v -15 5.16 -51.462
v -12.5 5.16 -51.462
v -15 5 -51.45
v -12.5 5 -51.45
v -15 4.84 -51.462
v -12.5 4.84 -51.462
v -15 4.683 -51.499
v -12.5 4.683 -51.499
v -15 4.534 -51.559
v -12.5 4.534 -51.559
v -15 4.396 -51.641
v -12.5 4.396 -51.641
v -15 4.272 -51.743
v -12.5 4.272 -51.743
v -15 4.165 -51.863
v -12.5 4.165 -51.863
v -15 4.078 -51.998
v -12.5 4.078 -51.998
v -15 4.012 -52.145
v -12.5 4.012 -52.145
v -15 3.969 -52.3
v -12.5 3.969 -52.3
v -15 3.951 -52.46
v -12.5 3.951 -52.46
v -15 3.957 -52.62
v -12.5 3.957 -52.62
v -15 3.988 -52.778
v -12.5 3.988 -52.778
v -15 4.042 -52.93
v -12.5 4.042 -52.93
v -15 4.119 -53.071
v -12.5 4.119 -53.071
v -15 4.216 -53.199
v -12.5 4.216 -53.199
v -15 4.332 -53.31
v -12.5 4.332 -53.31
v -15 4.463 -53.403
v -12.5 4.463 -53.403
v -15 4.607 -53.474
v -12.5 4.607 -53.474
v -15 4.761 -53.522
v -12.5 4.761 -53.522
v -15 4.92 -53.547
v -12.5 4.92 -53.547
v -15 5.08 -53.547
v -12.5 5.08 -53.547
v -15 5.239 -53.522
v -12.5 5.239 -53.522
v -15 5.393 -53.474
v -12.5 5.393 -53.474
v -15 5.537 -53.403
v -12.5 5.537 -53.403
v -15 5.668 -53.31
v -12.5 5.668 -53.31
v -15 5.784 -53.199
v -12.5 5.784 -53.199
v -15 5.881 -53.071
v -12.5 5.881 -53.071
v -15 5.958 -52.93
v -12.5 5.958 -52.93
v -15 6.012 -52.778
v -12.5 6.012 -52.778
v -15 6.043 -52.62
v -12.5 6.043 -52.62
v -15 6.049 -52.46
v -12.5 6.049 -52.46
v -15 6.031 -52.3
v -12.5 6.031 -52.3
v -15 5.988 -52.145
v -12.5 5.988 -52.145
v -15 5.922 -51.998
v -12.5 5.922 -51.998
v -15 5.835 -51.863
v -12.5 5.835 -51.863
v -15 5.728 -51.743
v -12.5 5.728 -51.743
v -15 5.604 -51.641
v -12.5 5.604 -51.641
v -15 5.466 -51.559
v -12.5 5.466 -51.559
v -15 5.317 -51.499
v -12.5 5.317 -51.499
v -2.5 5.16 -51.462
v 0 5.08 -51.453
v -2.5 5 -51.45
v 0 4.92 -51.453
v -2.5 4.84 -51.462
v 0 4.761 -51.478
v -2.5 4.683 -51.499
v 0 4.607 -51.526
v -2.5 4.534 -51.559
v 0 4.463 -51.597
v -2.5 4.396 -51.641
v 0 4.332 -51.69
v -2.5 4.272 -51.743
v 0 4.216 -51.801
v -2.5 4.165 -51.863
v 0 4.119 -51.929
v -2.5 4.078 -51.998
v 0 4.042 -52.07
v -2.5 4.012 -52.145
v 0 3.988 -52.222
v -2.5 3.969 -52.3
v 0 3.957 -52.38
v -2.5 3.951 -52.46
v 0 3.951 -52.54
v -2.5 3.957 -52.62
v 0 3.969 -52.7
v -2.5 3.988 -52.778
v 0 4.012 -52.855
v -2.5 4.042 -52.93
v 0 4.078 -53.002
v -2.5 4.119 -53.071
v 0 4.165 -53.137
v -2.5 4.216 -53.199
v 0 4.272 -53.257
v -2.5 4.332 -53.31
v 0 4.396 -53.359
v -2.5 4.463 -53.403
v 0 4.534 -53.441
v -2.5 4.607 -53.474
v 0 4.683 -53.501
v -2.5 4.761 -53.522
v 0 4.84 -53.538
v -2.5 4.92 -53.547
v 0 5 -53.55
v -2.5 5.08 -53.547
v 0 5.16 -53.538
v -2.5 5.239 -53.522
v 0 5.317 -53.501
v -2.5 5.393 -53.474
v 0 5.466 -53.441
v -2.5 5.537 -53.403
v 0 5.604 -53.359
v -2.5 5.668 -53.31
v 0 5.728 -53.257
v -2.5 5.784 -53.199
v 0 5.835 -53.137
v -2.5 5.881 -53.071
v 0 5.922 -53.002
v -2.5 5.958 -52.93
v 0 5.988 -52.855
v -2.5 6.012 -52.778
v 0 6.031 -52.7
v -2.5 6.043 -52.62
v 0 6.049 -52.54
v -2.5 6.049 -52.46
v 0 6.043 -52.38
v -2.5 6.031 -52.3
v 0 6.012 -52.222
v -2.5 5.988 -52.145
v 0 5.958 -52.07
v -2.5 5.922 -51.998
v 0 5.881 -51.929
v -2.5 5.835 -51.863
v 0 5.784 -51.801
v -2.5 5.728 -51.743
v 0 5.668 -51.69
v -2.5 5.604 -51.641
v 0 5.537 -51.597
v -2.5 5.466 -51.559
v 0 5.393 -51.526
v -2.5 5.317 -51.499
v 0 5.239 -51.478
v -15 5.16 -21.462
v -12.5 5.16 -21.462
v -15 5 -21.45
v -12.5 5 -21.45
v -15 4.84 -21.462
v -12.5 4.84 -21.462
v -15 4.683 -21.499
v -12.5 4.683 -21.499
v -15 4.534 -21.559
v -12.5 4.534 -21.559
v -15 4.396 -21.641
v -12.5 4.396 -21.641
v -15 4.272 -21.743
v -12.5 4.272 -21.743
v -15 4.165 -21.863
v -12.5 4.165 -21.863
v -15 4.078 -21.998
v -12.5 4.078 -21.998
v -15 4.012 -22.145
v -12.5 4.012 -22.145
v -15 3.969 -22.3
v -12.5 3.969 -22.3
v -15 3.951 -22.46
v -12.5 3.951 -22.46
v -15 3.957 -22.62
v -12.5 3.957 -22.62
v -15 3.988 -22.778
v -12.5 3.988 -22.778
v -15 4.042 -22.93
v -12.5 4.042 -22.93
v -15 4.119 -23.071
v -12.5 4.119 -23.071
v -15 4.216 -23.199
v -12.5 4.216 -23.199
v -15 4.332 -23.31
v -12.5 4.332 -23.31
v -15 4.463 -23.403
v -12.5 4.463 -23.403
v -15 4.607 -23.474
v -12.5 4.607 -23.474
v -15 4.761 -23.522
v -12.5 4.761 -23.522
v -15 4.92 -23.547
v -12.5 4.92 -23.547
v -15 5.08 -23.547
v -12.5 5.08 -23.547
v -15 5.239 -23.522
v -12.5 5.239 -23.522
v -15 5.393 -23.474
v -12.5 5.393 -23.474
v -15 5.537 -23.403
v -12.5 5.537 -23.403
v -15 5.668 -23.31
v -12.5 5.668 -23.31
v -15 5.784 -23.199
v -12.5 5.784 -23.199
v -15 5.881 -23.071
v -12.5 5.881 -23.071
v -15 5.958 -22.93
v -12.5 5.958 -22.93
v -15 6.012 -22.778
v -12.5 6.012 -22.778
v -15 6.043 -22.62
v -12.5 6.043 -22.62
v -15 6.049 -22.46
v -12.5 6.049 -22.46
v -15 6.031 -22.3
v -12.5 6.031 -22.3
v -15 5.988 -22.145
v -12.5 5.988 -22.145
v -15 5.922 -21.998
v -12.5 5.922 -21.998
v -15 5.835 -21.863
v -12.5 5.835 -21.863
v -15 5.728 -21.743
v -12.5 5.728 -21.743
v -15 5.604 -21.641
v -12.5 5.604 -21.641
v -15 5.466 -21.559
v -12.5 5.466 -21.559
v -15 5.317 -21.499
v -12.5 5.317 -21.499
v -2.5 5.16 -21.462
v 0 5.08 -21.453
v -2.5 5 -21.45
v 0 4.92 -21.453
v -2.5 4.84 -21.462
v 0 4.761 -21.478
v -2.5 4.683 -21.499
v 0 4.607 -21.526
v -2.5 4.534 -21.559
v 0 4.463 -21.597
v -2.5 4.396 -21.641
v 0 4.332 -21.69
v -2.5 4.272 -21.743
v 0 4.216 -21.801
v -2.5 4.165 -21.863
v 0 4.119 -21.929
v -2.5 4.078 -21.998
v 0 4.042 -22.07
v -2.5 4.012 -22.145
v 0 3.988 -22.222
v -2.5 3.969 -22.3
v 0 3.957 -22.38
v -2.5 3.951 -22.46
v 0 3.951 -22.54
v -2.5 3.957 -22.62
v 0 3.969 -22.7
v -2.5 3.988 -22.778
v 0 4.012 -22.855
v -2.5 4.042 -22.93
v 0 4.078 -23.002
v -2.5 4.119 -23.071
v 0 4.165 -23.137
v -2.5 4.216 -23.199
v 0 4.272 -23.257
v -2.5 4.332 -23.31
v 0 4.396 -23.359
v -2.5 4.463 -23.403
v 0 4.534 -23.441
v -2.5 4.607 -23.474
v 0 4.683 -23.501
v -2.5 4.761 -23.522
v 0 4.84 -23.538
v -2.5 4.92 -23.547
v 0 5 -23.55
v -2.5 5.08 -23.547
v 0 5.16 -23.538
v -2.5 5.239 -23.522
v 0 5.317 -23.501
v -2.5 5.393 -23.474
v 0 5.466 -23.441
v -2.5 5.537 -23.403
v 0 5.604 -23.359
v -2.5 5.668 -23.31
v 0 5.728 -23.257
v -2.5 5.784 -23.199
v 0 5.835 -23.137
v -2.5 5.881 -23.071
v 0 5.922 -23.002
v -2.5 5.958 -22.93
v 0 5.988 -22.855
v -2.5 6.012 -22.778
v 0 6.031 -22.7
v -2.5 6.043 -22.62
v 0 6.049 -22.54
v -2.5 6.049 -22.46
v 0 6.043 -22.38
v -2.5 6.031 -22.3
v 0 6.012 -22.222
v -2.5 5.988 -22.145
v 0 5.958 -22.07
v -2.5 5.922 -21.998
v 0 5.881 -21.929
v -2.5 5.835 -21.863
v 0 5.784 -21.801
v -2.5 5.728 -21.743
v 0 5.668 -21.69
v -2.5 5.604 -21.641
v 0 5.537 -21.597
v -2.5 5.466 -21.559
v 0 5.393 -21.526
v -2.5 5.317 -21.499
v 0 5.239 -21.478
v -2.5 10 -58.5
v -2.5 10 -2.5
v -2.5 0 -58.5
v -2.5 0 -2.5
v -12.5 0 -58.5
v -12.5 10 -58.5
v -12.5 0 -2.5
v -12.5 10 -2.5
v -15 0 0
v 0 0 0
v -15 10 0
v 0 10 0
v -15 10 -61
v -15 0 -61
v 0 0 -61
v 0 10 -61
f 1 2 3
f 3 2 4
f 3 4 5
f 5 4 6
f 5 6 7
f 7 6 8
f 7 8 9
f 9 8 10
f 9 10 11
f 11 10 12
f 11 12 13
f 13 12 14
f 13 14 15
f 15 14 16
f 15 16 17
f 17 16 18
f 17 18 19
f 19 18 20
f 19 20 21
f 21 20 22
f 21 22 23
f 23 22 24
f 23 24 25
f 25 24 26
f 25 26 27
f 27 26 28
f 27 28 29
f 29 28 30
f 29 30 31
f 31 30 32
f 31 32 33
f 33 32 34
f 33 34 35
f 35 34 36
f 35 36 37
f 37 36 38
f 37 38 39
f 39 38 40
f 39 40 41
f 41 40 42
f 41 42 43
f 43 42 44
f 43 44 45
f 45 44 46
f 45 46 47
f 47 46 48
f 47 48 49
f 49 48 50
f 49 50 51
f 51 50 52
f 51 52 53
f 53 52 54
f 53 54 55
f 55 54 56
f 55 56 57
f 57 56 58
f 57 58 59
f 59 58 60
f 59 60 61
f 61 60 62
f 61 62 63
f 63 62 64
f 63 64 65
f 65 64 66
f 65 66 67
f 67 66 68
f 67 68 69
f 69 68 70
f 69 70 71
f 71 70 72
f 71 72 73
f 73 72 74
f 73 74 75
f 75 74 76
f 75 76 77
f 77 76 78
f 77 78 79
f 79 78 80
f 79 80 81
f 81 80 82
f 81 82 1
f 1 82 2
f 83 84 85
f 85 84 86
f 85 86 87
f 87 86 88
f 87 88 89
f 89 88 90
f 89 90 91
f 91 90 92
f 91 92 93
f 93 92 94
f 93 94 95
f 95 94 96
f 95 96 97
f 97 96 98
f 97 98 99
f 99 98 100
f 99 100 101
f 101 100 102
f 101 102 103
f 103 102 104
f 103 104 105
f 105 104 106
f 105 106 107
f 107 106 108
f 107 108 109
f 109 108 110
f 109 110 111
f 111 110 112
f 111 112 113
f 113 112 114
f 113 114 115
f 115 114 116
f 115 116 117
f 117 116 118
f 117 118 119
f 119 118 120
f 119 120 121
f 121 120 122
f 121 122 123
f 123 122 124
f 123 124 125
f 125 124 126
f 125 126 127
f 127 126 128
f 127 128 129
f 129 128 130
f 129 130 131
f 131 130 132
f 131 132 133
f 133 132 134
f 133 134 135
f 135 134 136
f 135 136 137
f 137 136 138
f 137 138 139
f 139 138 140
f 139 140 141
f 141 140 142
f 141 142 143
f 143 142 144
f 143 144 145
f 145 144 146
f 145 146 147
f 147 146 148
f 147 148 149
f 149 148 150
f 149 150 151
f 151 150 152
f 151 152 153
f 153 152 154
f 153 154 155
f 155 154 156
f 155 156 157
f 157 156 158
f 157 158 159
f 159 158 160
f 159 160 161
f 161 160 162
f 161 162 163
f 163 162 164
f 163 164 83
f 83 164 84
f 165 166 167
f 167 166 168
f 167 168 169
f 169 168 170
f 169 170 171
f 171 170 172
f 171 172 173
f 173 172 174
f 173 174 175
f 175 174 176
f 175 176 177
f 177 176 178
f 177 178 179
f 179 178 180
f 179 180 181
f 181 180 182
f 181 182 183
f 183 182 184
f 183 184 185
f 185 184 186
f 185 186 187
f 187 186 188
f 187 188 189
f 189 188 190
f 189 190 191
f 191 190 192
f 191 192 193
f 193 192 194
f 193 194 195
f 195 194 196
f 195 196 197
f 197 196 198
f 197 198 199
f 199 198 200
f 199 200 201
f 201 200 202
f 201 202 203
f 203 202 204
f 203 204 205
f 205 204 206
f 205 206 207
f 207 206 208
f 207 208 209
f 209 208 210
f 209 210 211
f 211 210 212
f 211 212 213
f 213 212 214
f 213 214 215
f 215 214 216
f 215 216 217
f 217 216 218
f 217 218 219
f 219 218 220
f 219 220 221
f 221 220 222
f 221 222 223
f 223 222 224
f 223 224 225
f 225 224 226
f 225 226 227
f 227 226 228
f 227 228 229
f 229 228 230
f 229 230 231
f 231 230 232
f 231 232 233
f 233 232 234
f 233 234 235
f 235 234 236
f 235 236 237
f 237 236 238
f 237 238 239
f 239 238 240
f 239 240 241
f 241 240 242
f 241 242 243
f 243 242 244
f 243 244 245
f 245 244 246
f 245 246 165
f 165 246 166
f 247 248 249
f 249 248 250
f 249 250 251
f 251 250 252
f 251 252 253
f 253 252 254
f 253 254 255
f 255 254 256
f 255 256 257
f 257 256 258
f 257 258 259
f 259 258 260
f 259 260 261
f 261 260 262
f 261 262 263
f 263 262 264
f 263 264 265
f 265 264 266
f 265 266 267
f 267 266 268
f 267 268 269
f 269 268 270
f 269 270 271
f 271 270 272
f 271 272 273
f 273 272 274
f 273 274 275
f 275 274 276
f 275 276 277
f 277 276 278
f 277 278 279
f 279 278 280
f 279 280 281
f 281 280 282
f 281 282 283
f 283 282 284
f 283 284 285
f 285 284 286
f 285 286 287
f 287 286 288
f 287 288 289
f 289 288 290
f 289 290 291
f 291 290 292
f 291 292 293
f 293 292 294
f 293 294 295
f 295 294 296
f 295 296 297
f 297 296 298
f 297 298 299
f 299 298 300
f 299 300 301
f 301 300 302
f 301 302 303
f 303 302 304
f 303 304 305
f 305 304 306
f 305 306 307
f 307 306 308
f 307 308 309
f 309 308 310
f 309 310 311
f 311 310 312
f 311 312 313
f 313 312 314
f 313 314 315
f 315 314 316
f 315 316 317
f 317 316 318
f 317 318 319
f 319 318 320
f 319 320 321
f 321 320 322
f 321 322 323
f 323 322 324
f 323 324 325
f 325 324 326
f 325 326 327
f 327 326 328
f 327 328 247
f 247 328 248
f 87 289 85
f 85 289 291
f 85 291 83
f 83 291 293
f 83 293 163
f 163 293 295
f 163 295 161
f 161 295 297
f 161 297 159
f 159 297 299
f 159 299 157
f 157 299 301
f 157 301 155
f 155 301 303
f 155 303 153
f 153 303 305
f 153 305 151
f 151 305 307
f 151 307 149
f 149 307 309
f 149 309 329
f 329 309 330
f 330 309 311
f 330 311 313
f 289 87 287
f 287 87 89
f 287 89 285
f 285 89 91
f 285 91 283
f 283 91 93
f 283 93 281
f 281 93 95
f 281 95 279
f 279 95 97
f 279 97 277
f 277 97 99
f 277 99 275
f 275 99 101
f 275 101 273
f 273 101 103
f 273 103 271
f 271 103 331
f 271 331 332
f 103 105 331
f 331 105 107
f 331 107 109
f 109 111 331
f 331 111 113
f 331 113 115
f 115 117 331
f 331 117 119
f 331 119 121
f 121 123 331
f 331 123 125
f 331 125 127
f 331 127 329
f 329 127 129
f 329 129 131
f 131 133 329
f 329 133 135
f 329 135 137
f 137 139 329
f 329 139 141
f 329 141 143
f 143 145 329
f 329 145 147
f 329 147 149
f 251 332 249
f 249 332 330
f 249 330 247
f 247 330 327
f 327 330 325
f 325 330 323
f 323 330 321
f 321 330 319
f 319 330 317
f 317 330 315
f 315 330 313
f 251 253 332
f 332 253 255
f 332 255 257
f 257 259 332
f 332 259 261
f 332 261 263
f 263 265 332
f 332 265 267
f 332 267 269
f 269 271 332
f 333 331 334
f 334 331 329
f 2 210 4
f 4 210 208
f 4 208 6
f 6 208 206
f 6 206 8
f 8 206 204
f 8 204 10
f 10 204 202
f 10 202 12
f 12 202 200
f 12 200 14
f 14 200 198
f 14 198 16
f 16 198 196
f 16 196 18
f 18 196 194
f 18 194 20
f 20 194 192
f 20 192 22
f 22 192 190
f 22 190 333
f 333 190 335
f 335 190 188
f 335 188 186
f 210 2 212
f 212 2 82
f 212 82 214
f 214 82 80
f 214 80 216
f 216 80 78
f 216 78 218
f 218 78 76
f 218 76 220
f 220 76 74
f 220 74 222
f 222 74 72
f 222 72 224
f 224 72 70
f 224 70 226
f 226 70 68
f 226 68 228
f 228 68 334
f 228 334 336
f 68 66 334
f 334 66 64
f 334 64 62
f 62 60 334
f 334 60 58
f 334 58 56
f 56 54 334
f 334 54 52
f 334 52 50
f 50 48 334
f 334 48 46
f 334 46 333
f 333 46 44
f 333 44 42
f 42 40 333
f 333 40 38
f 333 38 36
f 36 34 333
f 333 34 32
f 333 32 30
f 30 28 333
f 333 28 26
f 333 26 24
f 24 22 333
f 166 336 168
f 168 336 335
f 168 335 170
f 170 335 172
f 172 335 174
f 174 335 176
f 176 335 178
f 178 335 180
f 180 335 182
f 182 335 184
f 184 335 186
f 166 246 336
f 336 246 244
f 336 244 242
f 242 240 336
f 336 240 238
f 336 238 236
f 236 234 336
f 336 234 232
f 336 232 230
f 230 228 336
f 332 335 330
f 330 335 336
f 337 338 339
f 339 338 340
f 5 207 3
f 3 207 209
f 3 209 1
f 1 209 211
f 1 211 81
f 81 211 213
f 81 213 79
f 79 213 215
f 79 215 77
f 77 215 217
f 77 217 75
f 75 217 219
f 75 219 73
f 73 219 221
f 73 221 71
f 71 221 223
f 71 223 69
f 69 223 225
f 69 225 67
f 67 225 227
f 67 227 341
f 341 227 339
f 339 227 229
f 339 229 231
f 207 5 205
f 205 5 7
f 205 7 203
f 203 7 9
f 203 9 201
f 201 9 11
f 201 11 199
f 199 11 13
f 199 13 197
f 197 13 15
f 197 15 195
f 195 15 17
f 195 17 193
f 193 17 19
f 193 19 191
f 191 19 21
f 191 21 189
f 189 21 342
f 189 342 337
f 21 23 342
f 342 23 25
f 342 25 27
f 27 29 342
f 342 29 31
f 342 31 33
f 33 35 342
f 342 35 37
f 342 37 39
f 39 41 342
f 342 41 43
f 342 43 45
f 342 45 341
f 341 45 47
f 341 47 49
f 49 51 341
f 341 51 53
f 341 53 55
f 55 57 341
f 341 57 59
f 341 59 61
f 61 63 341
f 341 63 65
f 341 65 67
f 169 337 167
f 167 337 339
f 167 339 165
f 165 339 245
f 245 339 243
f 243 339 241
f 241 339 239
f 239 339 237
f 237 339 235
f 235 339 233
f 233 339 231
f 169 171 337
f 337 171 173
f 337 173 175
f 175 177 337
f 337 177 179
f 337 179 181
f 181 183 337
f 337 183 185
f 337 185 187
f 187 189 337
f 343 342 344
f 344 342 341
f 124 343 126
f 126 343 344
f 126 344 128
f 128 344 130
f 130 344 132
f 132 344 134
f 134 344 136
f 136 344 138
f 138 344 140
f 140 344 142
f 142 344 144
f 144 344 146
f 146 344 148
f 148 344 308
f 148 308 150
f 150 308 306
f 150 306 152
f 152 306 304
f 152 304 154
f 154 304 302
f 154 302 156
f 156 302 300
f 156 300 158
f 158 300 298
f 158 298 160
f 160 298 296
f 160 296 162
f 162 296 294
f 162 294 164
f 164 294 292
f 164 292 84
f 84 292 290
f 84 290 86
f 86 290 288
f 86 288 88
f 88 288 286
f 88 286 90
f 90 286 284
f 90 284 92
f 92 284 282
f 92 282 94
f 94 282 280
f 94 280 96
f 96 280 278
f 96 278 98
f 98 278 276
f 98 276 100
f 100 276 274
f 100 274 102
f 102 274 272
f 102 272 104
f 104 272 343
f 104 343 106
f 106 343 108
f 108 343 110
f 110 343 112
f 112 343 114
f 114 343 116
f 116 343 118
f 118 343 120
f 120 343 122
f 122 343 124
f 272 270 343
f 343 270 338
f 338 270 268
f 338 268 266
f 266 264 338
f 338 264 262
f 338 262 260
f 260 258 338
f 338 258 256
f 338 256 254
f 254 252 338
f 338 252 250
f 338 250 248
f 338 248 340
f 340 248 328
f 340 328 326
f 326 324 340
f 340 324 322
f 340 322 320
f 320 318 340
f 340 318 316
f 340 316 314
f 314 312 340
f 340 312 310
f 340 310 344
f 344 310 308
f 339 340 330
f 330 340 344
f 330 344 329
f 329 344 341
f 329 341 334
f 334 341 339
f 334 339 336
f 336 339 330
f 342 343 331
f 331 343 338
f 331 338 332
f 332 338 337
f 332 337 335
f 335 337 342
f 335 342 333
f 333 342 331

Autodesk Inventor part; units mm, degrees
ref_plane "YZ Plane" through (0, 0, 0) normal (1, 0, 0) x (0, 1, 0)
ref_plane "XZ Plane" through (0, 0, 0) normal (0, 1, 0) x (-1, 0, 0)
ref_plane "XY Plane" through (0, 0, 0) normal (0, 0, 1) x (1, 0, 0)
sketch "Sketch1" plane through (0, 0, 0) normal (0, 1, 0) x (-1, 0, 0)
  line L0 (0, 0) -> (0, -60)
  line L1 (0, -60) -> (15, -60)
  line L2 (15, -60) -> (15, 0)
  line L3 (15, 0) -> (0, 0)
  line L4 (7.5, -60) -> (12.5, -60)
  line L5 (12.5, -60) -> (12.5, 0)
  line L6 (7.5, -60) -> (2.5, -60)
  line L7 (2.5, -60) -> (2.5, 0)
  line L8 (12.5, 0) -> (12.5, -2.5)
  line L9 (12.5, -2.5) -> (2.5, -2.5)
  line L10 (12.5, -60) -> (12.5, -57.5)
  line L11 (12.5, -57.5) -> (2.5, -57.5)
  line L12 (15, -60) -> (15, -61)
  line L13 (15, -61) -> (0, -61)
  line L14 (0, -61) -> (0, -60)
  line L15 (12.5, -57.5) -> (12.5, -58.5)
  line L16 (12.5, -58.5) -> (2.5, -58.5)
  dimension "d0" = 60
  dimension "d1" = 15
  dimension "d2" = 5
  dimension "d3" = 5
  dimension "d4" = 2.5
  dimension "d5" = 2.5
  dimension "d12" = 1
  dimension "d13" = 1
extrude "Extrusion1" add sketch "Sketch1" along normal blind 10 contours L3 L7 L1 L0 | L1 L12 L13 L14 | L3 L5 L9 L7 | L7 L16 L5 L1 | L3 L2 L1 L5
sketch "Sketch2" plane through (0, 0, 0) normal (1, 0, 0) x (0, 0, -1)
  line L0 (61, 10) -> (0, 10) projected
  line L1 (57.5, 0) -> (57.5, 10) projected
  line L2 (60, 10) -> (57.5, 10)
  line L3 (57.5, 10) -> (57.5, 0)
  line L4 (57.5, 0) -> (47.5, 0)
  line L5 (2.5, 0) -> (58.5, 0) projected
  line L6 (47.5, 0) -> (47.5, 10)
  line L7 (2.5, 10) -> (58.5, 10) projected
  line L8 (47.5, 10) -> (57.5, 10)
  line L9 (47.5, 0) -> (57.5, 10)
  line L10 (47.5, 10) -> (57.5, 0)
  circle A0 centre (52.5, 5) radius 1.1
  line L11 (61, 10) -> (60, 10)
  line L12 (60, 10) -> (57.5, 10)
  line L13 (52.5, 5) -> (0, 5)
  line L14 (0, 0) -> (0, 10) projected
  line L15 (0, 5) -> (2.5, 5)
  line L16 (2.5, 0) -> (2.5, 10) projected
  line L17 (2.5, 5) -> (22.5, 5)
  circle A1 centre (22.5, 5) radius 1.1
  dimension "d8" = 10
  dimension "d14" = 20
  dimension "d15" = 2.2
extrude "Extrusion2" cut sketch "Sketch2" against normal through all contours A0 L10 L9 | L9 L10 A0 | L10 L13 A0 | A0 L9 L10 | L9 A0 L13 | A1 L13 | L13 A1
properties part number "top"
